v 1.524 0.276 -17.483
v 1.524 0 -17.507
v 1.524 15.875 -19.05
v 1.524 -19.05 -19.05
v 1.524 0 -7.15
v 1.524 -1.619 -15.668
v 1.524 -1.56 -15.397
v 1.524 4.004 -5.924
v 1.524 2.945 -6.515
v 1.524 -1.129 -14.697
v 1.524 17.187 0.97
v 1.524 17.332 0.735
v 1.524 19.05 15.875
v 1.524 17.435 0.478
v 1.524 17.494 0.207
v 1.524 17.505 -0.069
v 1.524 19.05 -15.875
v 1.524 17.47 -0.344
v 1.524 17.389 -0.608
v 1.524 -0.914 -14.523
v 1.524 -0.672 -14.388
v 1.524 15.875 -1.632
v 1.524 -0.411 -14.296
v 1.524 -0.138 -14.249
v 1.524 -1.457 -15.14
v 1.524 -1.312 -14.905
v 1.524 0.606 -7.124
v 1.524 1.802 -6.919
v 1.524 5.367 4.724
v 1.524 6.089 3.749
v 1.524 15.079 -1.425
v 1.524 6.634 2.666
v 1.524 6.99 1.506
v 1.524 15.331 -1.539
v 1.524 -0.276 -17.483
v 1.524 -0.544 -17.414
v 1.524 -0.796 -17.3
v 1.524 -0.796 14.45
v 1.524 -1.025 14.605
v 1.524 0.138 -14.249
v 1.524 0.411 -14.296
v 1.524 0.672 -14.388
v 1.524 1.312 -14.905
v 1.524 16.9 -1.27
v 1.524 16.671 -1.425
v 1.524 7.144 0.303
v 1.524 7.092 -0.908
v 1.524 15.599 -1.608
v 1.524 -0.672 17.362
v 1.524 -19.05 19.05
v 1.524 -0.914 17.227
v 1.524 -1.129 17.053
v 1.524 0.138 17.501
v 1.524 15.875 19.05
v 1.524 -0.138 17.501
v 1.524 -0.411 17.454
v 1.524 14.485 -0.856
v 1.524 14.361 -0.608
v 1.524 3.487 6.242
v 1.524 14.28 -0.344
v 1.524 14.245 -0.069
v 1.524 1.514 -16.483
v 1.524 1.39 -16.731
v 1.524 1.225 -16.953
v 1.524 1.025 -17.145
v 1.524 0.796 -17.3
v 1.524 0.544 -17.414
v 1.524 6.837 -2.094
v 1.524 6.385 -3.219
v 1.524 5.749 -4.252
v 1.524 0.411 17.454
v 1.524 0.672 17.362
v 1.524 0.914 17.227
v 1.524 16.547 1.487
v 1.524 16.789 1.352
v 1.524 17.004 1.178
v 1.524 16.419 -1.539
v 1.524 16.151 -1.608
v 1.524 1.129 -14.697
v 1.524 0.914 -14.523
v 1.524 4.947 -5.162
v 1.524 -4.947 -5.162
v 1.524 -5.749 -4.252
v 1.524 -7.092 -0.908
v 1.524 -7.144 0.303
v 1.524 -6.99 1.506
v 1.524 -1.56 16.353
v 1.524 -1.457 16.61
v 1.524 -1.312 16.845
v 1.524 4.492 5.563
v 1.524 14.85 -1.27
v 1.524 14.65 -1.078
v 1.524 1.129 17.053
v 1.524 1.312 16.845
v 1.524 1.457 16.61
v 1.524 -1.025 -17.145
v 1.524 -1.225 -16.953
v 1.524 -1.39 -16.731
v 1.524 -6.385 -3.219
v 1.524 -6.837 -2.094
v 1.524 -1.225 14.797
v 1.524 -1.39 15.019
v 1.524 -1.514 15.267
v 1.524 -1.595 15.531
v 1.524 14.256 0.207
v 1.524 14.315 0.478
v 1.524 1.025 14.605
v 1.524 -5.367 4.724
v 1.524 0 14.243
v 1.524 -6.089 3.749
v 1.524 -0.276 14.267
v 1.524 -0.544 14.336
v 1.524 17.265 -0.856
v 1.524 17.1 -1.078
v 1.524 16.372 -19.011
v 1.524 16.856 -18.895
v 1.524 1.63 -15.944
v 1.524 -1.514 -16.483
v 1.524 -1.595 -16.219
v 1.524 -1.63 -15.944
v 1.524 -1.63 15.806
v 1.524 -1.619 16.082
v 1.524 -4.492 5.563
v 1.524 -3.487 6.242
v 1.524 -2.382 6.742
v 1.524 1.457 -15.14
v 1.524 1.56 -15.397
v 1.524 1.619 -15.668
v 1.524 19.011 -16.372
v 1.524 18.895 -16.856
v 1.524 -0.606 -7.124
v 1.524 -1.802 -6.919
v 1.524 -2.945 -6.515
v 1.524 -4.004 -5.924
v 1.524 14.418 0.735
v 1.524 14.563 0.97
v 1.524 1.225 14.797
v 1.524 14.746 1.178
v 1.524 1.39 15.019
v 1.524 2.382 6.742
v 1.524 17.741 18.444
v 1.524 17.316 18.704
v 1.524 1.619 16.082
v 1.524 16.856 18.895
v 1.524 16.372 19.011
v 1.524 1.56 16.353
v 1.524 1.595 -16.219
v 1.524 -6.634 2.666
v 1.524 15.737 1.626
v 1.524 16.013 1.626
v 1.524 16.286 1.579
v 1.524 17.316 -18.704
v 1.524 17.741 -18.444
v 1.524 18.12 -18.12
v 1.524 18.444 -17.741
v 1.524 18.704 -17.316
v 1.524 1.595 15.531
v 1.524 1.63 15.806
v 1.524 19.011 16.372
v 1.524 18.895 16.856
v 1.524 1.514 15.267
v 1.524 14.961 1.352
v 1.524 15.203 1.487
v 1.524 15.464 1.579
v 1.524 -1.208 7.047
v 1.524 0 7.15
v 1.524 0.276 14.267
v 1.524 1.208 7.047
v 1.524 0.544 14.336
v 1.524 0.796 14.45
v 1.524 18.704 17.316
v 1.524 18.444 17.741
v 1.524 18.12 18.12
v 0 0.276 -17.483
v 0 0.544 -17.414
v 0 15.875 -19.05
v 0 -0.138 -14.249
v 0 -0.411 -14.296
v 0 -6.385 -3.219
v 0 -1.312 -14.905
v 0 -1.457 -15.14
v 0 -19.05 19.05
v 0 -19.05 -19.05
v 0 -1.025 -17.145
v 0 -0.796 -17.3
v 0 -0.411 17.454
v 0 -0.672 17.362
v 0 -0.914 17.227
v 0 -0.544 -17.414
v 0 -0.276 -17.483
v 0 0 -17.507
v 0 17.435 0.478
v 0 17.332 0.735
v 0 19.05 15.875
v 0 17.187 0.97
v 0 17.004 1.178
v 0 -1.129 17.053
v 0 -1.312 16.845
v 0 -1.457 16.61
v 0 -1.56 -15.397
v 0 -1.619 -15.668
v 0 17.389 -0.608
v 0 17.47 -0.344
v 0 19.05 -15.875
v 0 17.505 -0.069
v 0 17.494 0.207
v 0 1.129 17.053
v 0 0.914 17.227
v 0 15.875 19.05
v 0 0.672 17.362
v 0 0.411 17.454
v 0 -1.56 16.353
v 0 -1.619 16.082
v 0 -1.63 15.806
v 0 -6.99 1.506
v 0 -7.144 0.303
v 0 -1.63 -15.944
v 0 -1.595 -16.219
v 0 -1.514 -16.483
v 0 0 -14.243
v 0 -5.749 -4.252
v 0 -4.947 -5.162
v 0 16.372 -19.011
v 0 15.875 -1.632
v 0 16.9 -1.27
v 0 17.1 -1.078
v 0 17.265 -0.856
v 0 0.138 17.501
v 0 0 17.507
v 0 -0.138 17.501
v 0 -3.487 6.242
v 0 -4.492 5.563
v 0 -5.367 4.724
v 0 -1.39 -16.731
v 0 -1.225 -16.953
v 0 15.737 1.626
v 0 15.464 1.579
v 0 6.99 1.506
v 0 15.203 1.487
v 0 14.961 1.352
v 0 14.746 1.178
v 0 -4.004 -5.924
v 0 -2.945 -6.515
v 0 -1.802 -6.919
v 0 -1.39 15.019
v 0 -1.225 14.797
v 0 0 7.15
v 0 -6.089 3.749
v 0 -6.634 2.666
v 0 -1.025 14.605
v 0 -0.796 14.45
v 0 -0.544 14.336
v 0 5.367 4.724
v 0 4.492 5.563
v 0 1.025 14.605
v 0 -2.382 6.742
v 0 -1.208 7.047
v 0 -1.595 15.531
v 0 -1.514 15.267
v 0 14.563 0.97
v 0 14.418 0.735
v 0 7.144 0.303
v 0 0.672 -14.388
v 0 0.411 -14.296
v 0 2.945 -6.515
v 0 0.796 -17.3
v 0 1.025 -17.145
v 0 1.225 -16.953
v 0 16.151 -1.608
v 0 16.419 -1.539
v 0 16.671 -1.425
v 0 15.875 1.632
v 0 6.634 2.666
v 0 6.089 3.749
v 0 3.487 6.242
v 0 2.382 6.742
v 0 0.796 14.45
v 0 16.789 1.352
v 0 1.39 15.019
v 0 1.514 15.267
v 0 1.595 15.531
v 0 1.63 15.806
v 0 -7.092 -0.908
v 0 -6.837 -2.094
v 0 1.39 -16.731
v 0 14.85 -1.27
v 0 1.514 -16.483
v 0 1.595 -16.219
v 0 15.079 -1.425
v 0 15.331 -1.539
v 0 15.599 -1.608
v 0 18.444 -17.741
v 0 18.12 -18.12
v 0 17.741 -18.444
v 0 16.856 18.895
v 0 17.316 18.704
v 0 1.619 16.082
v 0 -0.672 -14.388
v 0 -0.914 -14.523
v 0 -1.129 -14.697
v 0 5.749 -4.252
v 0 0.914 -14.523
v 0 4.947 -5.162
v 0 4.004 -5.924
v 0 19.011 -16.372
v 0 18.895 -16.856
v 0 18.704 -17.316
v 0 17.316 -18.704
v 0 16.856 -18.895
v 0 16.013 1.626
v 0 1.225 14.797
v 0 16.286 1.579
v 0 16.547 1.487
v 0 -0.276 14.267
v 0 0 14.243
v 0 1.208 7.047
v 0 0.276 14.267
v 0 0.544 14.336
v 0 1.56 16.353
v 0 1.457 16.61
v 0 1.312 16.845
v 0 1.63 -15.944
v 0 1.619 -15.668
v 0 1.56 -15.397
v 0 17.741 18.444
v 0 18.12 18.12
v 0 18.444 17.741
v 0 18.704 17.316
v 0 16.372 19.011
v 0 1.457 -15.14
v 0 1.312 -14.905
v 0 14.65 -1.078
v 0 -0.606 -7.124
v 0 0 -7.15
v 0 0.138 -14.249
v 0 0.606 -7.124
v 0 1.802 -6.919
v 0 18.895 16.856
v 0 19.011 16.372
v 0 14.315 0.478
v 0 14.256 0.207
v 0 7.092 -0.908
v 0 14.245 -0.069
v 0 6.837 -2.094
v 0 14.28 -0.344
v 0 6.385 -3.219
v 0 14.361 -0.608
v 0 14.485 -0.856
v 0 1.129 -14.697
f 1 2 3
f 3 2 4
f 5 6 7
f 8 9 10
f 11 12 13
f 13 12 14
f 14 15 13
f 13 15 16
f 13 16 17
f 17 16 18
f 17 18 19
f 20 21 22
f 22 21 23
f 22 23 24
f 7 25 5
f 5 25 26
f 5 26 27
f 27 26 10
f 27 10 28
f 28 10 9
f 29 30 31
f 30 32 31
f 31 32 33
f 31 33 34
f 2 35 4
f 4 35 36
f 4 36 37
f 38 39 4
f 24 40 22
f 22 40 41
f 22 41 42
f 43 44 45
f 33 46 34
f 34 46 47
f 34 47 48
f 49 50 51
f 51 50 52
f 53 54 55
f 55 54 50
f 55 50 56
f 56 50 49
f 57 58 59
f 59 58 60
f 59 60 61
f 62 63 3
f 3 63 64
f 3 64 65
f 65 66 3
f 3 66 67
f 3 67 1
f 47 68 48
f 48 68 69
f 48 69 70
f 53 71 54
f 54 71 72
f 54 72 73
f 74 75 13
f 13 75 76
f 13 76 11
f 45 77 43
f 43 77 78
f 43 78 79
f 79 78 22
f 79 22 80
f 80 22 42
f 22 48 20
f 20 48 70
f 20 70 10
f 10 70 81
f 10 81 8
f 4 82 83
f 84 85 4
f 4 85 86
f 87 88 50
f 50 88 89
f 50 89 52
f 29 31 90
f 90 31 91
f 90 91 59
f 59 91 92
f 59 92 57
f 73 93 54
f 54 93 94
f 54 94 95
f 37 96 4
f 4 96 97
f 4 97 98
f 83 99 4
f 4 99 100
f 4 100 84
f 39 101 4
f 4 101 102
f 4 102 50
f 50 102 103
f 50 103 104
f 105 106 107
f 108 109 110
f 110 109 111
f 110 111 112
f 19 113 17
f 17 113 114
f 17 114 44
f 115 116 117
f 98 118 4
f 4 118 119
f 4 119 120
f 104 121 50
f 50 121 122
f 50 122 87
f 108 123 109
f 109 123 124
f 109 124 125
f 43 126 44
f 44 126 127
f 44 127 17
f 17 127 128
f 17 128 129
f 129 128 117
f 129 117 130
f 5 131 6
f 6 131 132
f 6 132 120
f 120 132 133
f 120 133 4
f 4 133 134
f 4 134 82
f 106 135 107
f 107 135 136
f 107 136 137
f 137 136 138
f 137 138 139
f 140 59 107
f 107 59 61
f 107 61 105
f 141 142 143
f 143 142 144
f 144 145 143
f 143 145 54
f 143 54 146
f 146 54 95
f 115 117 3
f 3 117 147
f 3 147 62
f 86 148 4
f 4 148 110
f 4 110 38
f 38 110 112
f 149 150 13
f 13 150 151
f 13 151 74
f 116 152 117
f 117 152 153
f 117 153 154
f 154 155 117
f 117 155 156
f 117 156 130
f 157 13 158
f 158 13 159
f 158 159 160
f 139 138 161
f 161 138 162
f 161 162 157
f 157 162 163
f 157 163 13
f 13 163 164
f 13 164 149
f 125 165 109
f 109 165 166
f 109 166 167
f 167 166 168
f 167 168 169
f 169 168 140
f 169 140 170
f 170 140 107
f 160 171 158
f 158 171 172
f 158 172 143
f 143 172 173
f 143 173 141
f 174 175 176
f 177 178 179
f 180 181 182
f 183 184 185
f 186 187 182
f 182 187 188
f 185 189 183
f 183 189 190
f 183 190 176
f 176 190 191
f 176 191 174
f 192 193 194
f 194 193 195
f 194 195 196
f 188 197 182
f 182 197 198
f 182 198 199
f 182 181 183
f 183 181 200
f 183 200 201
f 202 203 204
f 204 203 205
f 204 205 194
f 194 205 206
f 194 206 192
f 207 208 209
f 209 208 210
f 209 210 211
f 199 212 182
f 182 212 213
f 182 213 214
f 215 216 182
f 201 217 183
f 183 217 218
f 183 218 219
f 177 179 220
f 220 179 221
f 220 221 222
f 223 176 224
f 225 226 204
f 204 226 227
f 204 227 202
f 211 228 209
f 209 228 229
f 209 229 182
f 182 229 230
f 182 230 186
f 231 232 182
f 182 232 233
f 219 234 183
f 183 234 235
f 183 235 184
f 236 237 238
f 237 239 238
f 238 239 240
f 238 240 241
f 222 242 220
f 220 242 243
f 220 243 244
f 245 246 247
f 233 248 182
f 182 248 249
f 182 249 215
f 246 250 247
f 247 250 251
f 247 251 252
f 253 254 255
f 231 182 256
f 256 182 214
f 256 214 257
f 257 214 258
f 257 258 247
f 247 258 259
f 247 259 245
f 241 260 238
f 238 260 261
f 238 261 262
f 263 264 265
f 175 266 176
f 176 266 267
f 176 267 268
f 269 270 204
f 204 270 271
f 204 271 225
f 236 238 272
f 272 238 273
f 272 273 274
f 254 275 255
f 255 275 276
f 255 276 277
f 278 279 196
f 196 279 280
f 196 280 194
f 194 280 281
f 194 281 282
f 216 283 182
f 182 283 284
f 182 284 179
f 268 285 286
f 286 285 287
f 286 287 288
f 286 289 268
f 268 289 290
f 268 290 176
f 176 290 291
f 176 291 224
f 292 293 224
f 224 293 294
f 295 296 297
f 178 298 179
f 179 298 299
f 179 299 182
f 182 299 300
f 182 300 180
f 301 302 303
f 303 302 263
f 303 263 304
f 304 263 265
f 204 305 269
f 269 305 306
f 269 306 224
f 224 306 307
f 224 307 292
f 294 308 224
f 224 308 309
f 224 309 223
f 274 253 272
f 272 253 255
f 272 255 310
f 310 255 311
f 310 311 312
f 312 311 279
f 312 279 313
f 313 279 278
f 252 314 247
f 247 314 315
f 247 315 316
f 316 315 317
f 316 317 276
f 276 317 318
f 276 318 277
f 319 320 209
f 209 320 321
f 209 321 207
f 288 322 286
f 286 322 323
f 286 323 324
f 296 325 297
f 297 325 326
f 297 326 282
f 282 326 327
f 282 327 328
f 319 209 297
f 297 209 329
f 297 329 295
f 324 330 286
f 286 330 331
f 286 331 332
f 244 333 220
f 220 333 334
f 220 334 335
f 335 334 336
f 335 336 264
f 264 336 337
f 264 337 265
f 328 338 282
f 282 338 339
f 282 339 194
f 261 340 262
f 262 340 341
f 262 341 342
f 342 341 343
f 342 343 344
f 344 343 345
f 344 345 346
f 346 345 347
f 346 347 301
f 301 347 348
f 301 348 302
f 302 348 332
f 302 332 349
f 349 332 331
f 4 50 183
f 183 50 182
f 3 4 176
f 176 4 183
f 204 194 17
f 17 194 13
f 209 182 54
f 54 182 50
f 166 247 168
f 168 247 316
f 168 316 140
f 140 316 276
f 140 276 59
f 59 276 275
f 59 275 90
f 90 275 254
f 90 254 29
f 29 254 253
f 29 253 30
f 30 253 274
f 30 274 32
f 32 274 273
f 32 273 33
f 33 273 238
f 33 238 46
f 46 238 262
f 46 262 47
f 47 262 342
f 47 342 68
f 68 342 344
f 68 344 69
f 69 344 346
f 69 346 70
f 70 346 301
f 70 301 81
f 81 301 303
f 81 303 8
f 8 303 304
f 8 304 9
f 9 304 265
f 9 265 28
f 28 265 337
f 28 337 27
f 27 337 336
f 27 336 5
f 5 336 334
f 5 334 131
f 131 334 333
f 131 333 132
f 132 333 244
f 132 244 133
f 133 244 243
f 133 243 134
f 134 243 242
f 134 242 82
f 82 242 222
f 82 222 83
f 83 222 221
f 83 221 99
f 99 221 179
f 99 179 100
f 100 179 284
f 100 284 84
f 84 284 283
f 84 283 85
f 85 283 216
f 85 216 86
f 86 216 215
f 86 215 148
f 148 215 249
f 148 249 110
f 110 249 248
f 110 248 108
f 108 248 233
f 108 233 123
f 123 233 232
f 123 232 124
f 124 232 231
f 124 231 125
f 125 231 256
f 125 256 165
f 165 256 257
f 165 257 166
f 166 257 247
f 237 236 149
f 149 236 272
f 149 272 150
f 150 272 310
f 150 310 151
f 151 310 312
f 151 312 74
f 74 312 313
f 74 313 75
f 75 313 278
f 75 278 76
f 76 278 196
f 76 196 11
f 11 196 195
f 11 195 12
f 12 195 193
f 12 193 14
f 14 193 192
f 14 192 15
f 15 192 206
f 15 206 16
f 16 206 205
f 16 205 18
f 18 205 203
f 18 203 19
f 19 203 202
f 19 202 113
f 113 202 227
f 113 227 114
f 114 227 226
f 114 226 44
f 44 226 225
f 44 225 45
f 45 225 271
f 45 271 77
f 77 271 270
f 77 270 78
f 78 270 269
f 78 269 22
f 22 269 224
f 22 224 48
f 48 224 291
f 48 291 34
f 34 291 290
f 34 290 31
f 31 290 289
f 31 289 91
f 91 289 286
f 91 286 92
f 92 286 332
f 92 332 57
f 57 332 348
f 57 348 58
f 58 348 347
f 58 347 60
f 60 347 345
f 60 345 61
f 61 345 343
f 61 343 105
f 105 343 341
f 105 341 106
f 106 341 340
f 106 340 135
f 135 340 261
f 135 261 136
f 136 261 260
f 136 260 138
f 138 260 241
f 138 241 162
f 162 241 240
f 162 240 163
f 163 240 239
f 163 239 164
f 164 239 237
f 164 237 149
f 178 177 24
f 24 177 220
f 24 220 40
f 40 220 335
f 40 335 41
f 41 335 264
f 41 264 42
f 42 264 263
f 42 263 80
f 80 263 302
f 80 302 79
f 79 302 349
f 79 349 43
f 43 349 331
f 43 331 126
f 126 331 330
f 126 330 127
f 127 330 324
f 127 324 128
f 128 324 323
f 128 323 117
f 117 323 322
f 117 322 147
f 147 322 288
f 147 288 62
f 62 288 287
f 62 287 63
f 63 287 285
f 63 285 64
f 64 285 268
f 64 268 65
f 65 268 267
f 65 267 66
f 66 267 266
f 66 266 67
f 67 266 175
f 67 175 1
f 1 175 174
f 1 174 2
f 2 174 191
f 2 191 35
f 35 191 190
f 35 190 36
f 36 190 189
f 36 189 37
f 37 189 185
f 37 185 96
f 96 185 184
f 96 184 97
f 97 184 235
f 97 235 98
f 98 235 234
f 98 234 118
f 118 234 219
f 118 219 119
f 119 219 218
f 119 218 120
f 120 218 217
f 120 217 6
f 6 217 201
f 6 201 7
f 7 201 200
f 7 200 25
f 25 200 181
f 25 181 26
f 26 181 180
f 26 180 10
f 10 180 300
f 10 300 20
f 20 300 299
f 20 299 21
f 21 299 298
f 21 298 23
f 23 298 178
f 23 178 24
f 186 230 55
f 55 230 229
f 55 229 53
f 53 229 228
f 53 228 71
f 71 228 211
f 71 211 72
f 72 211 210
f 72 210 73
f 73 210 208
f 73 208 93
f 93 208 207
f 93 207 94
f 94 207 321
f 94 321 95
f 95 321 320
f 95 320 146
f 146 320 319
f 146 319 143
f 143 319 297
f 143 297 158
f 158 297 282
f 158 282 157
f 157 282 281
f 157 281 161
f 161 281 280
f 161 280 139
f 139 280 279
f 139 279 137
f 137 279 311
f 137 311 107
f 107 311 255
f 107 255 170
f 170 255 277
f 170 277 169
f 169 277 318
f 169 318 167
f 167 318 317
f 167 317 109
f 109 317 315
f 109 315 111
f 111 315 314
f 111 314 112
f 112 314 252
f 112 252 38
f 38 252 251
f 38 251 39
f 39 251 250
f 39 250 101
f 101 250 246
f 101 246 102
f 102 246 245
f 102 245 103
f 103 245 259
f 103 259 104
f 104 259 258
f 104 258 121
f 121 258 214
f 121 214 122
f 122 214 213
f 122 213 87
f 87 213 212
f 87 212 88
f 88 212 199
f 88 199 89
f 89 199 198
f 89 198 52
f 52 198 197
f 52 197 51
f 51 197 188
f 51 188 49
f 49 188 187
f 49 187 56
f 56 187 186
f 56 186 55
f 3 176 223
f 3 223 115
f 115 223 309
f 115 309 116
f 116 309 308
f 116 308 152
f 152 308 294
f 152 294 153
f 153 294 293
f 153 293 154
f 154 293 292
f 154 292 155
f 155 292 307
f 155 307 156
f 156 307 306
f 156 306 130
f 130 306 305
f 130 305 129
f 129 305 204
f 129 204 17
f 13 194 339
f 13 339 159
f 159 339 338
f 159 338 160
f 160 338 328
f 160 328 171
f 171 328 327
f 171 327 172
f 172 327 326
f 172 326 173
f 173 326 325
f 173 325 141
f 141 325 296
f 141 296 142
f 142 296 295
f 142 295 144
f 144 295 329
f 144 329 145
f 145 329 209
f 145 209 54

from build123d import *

# Parameters (mm, degrees)
SKETCH1_W                 = 38.1
SKETCH1_H                 = 38.1
SKETCH1_R                 = 7.1501
BOSS_EXTRUDE1_DEPTH       = 1.524
F_4_CLEARANCE_HOLE1_D     = 3.2639
F_4_CLEARANCE_HOLE1_DEPTH = 1.524
FILLET1_R                 = 3.175


with BuildPart() as part:
    # Sketch1 → Boss-Extrude1 (new body)
    with BuildSketch(Plane(origin=(0, 0, 0), x_dir=(0, 0, -1), z_dir=(1, 0, 0))):
        Rectangle(SKETCH1_W, SKETCH1_H)
        Circle(SKETCH1_R, mode=Mode.SUBTRACT)
    extrude(amount=BOSS_EXTRUDE1_DEPTH)

    # #4 Clearance Hole1
    with Locations(Plane(origin=(1.524, 0, 0), x_dir=(0, 0, -1), z_dir=(1, 0, 0))):
        with Locations((-15.875, 0), (15.875, 0), (0, 15.875)):
            Hole(F_4_CLEARANCE_HOLE1_D / 2, depth=F_4_CLEARANCE_HOLE1_DEPTH)

    # Fillet1
    fillet1_edges = [part.edges().sort_by_distance(p)[0] for p in [
        (0.762, 19.05, 19.05),
        (0.762, 19.05, -19.05),
    ]]
    fillet(fillet1_edges, radius=FILLET1_R)


solid = part.part
